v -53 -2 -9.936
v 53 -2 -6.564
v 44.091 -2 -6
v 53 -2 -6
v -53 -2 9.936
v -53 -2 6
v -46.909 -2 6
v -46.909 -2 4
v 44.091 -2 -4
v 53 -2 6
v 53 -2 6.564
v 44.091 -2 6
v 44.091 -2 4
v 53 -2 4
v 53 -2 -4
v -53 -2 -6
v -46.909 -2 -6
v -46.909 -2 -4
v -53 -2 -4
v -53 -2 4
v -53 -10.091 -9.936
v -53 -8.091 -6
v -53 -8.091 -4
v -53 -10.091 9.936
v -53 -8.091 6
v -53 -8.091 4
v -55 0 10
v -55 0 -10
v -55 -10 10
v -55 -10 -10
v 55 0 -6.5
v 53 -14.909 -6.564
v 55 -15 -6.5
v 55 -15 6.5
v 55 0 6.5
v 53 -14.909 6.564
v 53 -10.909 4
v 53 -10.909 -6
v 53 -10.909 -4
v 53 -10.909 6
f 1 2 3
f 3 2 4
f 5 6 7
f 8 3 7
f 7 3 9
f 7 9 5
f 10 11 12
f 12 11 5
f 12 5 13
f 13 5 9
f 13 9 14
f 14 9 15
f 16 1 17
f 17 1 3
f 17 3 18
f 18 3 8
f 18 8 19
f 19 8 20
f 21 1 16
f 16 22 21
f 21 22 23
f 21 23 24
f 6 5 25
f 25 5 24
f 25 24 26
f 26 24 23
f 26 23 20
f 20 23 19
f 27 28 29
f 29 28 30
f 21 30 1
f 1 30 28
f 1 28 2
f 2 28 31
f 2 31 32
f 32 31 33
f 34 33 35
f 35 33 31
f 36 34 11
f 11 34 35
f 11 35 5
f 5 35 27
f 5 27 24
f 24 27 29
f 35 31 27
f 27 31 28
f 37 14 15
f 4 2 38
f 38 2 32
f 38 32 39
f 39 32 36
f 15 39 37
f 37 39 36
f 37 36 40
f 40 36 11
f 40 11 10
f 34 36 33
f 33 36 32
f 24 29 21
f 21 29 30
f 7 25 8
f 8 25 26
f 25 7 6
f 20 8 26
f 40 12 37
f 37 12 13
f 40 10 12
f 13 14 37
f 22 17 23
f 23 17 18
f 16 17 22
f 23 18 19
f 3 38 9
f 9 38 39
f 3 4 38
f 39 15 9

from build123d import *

# Parameters (mm, degrees)
BOSS_EXTRUDE1_DEPTH     = 2
BOSS_EXTRUDE2_DEPTH     = 13
CUT_EXTRUDE1_DEPTH      = 58.879184514
CUT_EXTRUDE1_DEPTH_BACK = 58.879184514
BOSS_EXTRUDE3_START     = 4
BOSS_EXTRUDE3_DEPTH     = 2


with BuildPart() as part:
    # Sketch2 → Boss-Extrude1 (new body)
    with BuildSketch(Plane(origin=(0, 0, 0), x_dir=(1, 0, 0), z_dir=(0, 1, 0))):
        Polygon((55, -6.5), (-55, -10), (-55, 10), (55, 6.5), align=None)
    extrude(amount=-BOSS_EXTRUDE1_DEPTH)

    # Sketch3 → Boss-Extrude2 (add)
    with BuildSketch(Plane.XZ.offset(2)):
        Polygon((-53, 9.936363636), (-53, -9.936363636), (-55, -10), (-55, 10), align=None)
        Polygon((53, -6.563636364), (53, 6.563636364), (55, 6.5), (55, -6.5), align=None)
    extrude(amount=BOSS_EXTRUDE2_DEPTH)

    # Sketch5 → Cut-Extrude1 (cut, two sides: drawn at the far end of the back side and taken through both)
    with BuildSketch(Plane.XY.offset(-CUT_EXTRUDE1_DEPTH_BACK)):
        Polygon((-55, -10), (55, -15), (55, -25), (-55, -25), align=None)
    extrude(amount=CUT_EXTRUDE1_DEPTH + CUT_EXTRUDE1_DEPTH_BACK, mode=Mode.SUBTRACT)

    # Sketch6 → Boss-Extrude3 (add)
    with BuildSketch(Plane.XY.offset(BOSS_EXTRUDE3_START)):
        Polygon((-53, -8.090909091), (-46.909090909, -2), (-53, -2), align=None)
        Polygon((53, -10.909090909), (53, -2), (44.090909091, -2), align=None)
    boss_extrude3 = extrude(amount=BOSS_EXTRUDE3_DEPTH)

    # Mirror1: Boss-Extrude3 across plane
    add(boss_extrude3.mirror(Plane.XY))


solid = part.part
